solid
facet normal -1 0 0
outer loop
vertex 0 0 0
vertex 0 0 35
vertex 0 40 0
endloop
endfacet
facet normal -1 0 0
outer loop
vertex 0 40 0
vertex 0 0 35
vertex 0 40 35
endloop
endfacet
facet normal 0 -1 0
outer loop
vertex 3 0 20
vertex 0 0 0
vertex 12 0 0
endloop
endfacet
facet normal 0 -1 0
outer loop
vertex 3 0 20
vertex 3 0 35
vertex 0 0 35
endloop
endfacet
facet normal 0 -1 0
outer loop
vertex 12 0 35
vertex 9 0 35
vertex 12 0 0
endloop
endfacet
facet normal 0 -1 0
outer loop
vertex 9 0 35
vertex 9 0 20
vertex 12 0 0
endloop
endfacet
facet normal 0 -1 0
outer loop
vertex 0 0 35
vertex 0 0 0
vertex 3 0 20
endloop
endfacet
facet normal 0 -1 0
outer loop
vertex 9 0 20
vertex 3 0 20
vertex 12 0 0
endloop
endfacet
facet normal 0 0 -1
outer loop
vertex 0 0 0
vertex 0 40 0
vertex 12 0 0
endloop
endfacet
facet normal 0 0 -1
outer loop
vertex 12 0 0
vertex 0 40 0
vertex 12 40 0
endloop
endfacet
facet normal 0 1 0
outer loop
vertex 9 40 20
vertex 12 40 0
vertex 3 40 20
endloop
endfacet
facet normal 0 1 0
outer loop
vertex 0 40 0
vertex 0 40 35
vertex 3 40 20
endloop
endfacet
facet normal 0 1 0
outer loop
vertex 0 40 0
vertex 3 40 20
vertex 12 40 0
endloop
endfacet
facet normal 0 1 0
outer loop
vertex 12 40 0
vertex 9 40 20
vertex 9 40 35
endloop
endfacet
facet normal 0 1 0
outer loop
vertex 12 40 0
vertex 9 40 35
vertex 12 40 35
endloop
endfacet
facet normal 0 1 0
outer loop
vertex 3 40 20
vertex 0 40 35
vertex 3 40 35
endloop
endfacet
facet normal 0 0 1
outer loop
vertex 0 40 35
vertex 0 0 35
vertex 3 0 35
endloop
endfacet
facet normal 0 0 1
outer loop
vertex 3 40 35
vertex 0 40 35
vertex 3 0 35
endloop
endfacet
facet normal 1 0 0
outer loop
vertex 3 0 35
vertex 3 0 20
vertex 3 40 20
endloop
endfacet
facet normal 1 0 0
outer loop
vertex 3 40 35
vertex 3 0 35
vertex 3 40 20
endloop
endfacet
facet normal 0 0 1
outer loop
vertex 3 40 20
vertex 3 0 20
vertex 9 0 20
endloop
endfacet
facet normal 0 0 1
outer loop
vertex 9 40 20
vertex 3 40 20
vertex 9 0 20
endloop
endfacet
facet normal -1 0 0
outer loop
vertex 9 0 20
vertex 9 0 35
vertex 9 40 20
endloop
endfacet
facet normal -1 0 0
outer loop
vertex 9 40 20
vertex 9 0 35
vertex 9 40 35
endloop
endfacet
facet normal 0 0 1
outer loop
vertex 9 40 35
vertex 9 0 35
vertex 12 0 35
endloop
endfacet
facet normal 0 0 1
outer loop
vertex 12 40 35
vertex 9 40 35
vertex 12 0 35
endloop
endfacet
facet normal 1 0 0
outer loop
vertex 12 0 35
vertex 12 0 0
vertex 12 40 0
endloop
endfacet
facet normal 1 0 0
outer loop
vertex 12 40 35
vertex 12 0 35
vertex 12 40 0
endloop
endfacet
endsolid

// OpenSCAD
cube([12,40,20]);
cube([3,40,35]);
translate([9,0,0]) cube([3,40,35]);
